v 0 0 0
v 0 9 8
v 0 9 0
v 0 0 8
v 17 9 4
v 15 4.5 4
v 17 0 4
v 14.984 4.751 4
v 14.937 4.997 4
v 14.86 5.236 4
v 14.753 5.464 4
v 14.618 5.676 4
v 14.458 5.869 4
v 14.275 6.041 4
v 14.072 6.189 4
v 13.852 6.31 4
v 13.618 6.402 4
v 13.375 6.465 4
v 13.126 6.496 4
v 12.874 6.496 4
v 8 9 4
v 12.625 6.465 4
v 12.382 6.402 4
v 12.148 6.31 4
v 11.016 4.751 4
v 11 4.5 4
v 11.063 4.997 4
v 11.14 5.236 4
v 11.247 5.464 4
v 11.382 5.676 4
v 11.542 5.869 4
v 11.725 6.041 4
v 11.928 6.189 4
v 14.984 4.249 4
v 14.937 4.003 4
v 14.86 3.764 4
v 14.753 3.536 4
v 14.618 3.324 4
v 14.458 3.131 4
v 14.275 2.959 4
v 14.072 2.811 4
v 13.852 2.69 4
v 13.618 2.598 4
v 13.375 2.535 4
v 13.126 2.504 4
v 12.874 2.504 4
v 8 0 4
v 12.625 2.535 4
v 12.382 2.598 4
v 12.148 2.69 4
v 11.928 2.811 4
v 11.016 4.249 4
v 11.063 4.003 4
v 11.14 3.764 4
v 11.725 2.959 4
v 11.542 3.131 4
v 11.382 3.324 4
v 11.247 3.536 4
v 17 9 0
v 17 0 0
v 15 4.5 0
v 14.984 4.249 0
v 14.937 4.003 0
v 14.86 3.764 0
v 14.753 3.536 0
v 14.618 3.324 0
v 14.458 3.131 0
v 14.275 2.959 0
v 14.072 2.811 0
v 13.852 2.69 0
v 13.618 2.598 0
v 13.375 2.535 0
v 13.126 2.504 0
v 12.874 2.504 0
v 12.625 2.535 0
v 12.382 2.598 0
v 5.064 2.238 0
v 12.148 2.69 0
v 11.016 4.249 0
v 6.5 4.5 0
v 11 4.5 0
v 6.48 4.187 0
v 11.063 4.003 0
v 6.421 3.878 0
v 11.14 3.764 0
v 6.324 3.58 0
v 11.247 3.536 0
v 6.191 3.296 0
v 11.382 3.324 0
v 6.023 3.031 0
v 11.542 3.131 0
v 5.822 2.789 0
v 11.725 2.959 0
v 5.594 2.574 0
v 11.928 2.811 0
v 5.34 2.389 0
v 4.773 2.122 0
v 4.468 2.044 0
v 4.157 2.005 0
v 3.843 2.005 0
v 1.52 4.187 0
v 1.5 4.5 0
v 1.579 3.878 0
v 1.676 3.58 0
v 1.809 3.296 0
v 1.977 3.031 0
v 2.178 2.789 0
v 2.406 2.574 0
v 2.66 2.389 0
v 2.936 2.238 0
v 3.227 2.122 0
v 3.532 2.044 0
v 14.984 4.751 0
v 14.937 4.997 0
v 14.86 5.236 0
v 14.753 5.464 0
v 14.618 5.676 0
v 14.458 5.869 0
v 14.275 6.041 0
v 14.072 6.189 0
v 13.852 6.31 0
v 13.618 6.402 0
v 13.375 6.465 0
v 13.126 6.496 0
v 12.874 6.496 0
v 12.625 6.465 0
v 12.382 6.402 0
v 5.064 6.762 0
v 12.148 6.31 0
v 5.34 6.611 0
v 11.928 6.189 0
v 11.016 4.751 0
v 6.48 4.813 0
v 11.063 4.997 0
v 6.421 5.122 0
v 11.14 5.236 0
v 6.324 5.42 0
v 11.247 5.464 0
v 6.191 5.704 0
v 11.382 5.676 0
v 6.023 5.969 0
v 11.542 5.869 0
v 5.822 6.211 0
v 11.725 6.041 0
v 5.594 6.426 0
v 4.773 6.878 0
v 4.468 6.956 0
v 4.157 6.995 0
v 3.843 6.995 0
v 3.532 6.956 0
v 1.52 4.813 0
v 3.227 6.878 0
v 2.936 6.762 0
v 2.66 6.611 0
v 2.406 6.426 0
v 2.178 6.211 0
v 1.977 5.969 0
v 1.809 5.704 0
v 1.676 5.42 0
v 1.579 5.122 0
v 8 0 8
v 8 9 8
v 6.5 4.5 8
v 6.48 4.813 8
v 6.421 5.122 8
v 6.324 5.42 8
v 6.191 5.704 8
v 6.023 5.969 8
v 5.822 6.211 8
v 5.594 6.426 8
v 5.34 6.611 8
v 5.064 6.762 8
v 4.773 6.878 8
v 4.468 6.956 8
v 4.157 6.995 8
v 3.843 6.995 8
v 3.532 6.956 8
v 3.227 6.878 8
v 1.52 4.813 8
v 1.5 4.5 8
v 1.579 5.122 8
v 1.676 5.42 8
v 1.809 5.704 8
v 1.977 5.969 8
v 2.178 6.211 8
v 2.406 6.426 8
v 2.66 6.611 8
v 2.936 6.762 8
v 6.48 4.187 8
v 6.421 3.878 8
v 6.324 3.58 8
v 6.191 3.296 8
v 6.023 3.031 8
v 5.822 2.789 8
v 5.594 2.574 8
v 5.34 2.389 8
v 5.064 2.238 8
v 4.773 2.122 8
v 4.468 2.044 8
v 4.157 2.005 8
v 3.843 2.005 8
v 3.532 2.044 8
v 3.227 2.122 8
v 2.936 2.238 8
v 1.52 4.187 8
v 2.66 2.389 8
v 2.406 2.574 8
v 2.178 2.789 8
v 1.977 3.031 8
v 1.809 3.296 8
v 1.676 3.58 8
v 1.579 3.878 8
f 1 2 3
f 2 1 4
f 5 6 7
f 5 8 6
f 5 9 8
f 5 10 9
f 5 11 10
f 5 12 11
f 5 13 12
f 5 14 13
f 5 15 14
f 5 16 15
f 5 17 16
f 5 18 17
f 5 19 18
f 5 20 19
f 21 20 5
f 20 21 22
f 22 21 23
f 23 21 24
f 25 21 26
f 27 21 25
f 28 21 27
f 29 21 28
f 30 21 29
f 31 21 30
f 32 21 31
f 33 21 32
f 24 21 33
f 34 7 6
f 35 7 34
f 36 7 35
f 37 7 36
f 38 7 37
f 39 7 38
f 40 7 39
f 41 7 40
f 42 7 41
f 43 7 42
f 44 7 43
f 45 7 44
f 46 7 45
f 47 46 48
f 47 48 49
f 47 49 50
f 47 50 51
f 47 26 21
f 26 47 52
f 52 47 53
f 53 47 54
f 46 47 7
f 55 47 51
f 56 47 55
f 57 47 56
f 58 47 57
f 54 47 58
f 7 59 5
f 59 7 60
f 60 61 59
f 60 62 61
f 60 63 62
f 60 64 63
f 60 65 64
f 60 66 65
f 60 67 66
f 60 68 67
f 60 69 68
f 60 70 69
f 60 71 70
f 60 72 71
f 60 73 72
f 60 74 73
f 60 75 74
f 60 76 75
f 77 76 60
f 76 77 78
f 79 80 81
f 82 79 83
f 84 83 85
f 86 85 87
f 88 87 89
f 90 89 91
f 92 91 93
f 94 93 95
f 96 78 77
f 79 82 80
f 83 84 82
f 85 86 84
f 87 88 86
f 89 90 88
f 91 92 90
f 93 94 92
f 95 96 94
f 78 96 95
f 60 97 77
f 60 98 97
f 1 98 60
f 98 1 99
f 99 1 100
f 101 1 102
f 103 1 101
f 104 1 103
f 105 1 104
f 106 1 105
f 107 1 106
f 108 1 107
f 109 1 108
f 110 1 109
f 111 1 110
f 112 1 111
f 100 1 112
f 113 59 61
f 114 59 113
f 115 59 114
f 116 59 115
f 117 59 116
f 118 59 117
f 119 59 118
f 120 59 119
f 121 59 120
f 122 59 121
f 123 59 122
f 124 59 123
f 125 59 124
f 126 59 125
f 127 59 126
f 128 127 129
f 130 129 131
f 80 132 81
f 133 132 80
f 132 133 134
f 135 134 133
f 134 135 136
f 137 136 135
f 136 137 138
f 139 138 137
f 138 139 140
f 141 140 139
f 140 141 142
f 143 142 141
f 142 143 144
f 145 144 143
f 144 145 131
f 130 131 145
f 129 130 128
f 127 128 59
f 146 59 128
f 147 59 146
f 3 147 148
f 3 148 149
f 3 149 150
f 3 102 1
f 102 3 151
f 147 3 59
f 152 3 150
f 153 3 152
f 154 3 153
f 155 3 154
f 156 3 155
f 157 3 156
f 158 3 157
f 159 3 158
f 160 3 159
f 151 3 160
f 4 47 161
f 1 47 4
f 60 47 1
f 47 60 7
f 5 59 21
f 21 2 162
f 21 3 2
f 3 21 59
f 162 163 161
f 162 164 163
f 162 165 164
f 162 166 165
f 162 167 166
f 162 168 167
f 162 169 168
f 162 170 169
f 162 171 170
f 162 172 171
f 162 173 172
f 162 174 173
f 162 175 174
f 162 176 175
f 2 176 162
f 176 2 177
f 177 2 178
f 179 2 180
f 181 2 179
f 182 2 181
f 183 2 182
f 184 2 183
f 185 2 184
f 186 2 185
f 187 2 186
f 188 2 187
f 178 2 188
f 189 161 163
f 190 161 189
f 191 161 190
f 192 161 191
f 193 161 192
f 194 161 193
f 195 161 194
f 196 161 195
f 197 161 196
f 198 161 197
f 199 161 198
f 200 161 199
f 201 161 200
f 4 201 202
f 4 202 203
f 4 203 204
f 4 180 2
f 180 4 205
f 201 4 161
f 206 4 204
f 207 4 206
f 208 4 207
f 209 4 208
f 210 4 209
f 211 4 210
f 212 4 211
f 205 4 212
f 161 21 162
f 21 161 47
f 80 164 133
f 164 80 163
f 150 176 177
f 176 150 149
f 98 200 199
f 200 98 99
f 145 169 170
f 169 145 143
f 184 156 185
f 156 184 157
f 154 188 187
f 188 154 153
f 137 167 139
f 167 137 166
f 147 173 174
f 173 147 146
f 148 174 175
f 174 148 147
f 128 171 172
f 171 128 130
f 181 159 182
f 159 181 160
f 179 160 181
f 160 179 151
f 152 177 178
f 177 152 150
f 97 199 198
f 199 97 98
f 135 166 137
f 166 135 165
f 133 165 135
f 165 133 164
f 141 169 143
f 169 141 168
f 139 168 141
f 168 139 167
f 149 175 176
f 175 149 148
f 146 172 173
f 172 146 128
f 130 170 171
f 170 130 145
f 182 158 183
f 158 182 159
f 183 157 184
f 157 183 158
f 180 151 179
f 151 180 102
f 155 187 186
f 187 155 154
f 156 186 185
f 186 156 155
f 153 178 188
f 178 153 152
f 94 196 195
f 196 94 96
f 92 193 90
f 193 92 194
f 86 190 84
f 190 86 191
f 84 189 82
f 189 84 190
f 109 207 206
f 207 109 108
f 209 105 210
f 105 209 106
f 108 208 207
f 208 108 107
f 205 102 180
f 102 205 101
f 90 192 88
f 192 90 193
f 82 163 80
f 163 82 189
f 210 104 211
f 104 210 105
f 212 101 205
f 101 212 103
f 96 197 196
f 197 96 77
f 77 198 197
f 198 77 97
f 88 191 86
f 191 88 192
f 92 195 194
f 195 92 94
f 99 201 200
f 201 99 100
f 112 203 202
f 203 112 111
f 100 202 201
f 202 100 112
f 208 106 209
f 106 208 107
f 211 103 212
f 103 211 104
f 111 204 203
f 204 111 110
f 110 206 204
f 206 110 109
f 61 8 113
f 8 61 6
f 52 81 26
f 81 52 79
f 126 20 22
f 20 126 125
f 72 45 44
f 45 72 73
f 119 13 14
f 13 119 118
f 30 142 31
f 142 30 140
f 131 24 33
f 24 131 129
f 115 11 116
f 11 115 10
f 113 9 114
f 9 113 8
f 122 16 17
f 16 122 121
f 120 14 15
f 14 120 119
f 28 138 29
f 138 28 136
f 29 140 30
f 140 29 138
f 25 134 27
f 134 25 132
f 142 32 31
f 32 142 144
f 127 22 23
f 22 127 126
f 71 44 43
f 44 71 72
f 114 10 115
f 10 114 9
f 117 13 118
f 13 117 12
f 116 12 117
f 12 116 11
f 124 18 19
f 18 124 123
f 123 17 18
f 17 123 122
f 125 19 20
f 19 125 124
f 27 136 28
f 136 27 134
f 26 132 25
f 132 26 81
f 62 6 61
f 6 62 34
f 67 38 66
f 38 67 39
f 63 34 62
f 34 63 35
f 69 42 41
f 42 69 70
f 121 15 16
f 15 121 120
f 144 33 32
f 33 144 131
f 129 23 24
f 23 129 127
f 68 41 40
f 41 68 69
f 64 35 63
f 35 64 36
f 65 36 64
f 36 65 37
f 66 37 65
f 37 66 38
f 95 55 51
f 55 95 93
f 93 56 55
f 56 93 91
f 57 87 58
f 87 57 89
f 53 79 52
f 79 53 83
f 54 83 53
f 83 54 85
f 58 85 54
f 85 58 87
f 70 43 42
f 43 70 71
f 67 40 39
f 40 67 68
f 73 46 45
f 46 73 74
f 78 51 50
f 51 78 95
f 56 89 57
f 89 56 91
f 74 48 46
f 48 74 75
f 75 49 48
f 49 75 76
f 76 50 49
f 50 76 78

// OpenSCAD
$fn=50;

difference() {
    union() {
        cube([17,9,4]);
        cube([8,9,8]);
    }
    translate([4,4.5,0]) cylinder(8,5/2,5/2);
    translate([13,4.5,0]) cylinder(4,4/2,4/2);
}
